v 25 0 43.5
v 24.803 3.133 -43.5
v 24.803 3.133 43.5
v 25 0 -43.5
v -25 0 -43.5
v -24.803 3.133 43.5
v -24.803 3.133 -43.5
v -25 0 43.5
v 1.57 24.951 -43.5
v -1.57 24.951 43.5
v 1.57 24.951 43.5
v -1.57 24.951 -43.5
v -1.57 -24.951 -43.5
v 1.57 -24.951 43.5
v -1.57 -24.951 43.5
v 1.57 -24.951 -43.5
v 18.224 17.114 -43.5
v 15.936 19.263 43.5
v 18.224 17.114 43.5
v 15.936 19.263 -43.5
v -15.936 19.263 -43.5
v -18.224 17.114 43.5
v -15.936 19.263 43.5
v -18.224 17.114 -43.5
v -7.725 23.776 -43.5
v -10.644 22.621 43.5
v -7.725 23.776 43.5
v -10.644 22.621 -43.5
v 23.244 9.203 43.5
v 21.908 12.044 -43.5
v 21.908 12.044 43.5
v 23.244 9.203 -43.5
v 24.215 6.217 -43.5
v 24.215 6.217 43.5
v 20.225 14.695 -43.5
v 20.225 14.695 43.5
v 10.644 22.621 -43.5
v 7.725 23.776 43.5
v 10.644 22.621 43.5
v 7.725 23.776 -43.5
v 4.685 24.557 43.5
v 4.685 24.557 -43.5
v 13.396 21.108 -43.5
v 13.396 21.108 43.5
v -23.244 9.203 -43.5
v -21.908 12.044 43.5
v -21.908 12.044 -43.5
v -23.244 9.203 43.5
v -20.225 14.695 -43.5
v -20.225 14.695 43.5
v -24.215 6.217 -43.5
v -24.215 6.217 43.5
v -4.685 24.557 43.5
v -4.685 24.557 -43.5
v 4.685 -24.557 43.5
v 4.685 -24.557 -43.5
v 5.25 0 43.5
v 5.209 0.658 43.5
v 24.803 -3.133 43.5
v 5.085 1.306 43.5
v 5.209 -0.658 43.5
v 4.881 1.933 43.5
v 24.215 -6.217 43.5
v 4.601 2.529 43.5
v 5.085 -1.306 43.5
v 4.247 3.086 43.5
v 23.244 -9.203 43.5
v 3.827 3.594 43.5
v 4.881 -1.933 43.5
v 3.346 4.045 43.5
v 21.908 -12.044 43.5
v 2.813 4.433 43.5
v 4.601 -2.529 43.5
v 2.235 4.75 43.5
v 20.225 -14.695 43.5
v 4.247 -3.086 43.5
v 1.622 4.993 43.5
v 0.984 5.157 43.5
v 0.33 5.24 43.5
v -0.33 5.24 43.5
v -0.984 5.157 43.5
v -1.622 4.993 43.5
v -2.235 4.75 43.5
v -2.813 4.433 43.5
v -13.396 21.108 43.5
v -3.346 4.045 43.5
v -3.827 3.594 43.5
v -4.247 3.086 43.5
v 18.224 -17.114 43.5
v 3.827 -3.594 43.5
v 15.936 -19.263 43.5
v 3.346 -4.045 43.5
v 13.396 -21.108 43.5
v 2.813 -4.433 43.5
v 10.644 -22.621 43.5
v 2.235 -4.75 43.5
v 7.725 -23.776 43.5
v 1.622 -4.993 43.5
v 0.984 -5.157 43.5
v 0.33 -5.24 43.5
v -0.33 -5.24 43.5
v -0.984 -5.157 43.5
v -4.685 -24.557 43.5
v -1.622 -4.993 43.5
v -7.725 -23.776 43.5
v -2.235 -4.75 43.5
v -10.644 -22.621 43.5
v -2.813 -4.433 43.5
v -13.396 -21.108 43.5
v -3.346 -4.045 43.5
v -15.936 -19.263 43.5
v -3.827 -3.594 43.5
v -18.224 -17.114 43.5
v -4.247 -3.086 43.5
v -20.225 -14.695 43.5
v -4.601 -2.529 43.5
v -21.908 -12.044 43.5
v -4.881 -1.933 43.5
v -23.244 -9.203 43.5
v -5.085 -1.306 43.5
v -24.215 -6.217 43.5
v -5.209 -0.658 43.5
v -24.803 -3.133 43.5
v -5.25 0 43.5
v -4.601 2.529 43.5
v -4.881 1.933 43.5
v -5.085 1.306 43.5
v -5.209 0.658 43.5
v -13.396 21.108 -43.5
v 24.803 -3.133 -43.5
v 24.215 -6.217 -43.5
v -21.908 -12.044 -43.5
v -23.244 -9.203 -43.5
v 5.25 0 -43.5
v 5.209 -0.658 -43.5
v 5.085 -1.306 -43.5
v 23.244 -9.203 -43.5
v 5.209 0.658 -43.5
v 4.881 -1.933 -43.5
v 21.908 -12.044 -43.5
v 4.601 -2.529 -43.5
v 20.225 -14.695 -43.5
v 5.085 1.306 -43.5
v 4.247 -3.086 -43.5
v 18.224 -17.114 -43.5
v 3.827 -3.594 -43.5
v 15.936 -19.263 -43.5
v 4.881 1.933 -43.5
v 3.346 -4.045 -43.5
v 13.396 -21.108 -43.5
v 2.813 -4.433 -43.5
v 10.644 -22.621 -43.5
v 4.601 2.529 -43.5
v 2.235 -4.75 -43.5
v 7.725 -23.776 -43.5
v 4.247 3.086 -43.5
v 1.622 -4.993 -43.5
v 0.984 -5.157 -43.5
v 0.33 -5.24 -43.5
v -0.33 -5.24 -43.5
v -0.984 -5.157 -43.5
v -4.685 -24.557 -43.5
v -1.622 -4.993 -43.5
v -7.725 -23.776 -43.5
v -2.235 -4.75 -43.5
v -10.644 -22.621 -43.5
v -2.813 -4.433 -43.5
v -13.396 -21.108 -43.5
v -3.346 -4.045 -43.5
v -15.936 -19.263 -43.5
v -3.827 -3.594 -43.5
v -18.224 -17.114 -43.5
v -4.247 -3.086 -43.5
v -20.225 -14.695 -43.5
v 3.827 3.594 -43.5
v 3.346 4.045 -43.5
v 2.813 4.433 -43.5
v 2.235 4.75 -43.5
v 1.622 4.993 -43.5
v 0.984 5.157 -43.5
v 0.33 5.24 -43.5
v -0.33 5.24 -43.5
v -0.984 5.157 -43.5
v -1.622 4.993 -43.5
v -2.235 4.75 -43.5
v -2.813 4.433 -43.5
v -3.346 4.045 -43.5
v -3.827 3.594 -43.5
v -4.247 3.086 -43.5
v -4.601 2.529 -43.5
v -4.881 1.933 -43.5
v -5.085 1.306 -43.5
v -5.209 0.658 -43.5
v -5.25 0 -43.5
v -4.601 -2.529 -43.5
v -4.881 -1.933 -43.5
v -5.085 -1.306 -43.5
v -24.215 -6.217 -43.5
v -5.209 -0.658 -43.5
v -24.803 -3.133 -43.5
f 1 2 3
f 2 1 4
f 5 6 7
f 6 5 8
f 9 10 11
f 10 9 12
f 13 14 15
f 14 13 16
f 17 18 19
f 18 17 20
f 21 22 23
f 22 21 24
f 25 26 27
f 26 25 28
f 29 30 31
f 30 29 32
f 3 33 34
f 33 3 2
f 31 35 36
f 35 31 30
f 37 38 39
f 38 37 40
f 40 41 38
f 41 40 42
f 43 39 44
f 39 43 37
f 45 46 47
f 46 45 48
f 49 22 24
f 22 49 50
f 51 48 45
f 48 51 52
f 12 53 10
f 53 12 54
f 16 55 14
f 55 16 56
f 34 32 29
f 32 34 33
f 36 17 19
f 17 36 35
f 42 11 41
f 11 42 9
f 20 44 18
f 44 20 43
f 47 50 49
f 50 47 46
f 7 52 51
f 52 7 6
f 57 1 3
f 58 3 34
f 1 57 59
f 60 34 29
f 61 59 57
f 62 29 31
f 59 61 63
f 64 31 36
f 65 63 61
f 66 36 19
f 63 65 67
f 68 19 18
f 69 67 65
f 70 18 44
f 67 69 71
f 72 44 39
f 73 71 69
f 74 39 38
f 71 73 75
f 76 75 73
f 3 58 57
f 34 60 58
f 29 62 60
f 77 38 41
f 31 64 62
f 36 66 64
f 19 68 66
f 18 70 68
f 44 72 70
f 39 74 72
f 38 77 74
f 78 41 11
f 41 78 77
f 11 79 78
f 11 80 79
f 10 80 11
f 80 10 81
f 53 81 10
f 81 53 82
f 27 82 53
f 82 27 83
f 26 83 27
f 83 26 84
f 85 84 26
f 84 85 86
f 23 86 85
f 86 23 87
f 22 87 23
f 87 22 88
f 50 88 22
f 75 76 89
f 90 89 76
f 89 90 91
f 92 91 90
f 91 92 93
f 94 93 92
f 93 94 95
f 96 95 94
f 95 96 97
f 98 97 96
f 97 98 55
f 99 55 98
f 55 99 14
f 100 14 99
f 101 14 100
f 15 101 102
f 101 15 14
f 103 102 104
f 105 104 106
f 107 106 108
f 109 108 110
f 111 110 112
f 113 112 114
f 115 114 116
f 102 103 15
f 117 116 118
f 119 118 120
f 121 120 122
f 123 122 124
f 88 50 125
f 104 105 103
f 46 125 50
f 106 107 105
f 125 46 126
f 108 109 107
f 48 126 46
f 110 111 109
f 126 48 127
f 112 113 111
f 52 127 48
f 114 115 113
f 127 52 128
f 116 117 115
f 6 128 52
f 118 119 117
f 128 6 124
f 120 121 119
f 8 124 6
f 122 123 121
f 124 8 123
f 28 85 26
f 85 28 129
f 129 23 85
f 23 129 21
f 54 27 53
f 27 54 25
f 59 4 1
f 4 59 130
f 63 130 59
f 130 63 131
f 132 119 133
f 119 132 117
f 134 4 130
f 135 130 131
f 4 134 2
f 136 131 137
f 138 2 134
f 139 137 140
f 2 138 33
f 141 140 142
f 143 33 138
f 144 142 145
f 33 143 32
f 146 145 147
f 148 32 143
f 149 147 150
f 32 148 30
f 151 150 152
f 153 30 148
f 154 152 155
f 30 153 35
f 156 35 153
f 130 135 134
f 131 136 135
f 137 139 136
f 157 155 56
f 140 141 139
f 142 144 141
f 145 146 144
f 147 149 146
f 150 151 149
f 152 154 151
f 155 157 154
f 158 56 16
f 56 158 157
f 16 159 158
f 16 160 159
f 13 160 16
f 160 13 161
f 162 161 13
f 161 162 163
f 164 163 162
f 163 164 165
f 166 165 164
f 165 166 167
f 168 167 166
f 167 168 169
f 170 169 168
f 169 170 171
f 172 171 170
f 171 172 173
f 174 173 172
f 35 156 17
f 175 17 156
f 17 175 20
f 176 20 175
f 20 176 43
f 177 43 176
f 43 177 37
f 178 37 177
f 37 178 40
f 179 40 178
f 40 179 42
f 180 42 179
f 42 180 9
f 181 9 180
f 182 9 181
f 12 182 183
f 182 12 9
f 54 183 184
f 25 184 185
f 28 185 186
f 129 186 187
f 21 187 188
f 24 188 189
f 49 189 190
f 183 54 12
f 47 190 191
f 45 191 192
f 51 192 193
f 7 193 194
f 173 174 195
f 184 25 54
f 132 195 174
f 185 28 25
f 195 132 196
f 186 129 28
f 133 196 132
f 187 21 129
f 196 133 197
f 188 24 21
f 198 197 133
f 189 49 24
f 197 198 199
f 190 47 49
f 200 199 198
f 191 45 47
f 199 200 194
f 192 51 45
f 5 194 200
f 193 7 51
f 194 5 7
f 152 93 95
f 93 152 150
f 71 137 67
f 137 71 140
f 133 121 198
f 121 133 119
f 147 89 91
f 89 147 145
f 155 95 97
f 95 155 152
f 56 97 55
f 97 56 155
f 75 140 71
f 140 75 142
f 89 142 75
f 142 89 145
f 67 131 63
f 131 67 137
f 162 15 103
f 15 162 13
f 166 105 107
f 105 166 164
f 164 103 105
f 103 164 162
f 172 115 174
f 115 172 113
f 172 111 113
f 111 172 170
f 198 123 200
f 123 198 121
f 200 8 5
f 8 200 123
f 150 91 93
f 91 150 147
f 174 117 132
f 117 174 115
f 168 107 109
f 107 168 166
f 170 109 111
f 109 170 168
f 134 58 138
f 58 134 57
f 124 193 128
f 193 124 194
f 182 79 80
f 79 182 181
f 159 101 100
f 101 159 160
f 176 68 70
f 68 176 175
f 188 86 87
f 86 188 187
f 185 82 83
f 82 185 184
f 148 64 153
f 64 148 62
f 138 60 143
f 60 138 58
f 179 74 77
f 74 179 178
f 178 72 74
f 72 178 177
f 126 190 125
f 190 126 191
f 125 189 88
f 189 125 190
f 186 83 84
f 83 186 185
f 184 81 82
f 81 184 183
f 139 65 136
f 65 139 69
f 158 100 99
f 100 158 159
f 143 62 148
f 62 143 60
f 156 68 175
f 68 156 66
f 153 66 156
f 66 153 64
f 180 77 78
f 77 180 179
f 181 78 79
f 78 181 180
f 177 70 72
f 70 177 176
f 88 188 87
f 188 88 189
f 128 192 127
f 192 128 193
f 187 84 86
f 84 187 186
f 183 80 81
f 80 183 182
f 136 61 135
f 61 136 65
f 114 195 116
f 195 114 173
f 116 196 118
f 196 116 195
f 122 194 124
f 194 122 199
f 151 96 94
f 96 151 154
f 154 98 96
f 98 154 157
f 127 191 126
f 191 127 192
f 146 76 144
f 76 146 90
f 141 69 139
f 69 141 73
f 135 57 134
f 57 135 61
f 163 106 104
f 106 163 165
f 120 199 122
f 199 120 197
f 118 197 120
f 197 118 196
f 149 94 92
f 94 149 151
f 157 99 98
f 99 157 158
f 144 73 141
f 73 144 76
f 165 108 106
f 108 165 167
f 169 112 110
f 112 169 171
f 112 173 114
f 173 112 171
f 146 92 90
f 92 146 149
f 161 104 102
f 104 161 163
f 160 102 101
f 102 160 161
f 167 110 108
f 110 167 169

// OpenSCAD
$fn = 50;


difference() {
	union() {
		translate(v = [0, 0, -43.5000000000]) {
			cylinder(h = 87, r = 25.0000000000);
		}
	}
	union() {
		translate(v = [0, 0, -100.0000000000]) {
			cylinder(h = 200, r = 5.2500000000);
		}
	}
}
